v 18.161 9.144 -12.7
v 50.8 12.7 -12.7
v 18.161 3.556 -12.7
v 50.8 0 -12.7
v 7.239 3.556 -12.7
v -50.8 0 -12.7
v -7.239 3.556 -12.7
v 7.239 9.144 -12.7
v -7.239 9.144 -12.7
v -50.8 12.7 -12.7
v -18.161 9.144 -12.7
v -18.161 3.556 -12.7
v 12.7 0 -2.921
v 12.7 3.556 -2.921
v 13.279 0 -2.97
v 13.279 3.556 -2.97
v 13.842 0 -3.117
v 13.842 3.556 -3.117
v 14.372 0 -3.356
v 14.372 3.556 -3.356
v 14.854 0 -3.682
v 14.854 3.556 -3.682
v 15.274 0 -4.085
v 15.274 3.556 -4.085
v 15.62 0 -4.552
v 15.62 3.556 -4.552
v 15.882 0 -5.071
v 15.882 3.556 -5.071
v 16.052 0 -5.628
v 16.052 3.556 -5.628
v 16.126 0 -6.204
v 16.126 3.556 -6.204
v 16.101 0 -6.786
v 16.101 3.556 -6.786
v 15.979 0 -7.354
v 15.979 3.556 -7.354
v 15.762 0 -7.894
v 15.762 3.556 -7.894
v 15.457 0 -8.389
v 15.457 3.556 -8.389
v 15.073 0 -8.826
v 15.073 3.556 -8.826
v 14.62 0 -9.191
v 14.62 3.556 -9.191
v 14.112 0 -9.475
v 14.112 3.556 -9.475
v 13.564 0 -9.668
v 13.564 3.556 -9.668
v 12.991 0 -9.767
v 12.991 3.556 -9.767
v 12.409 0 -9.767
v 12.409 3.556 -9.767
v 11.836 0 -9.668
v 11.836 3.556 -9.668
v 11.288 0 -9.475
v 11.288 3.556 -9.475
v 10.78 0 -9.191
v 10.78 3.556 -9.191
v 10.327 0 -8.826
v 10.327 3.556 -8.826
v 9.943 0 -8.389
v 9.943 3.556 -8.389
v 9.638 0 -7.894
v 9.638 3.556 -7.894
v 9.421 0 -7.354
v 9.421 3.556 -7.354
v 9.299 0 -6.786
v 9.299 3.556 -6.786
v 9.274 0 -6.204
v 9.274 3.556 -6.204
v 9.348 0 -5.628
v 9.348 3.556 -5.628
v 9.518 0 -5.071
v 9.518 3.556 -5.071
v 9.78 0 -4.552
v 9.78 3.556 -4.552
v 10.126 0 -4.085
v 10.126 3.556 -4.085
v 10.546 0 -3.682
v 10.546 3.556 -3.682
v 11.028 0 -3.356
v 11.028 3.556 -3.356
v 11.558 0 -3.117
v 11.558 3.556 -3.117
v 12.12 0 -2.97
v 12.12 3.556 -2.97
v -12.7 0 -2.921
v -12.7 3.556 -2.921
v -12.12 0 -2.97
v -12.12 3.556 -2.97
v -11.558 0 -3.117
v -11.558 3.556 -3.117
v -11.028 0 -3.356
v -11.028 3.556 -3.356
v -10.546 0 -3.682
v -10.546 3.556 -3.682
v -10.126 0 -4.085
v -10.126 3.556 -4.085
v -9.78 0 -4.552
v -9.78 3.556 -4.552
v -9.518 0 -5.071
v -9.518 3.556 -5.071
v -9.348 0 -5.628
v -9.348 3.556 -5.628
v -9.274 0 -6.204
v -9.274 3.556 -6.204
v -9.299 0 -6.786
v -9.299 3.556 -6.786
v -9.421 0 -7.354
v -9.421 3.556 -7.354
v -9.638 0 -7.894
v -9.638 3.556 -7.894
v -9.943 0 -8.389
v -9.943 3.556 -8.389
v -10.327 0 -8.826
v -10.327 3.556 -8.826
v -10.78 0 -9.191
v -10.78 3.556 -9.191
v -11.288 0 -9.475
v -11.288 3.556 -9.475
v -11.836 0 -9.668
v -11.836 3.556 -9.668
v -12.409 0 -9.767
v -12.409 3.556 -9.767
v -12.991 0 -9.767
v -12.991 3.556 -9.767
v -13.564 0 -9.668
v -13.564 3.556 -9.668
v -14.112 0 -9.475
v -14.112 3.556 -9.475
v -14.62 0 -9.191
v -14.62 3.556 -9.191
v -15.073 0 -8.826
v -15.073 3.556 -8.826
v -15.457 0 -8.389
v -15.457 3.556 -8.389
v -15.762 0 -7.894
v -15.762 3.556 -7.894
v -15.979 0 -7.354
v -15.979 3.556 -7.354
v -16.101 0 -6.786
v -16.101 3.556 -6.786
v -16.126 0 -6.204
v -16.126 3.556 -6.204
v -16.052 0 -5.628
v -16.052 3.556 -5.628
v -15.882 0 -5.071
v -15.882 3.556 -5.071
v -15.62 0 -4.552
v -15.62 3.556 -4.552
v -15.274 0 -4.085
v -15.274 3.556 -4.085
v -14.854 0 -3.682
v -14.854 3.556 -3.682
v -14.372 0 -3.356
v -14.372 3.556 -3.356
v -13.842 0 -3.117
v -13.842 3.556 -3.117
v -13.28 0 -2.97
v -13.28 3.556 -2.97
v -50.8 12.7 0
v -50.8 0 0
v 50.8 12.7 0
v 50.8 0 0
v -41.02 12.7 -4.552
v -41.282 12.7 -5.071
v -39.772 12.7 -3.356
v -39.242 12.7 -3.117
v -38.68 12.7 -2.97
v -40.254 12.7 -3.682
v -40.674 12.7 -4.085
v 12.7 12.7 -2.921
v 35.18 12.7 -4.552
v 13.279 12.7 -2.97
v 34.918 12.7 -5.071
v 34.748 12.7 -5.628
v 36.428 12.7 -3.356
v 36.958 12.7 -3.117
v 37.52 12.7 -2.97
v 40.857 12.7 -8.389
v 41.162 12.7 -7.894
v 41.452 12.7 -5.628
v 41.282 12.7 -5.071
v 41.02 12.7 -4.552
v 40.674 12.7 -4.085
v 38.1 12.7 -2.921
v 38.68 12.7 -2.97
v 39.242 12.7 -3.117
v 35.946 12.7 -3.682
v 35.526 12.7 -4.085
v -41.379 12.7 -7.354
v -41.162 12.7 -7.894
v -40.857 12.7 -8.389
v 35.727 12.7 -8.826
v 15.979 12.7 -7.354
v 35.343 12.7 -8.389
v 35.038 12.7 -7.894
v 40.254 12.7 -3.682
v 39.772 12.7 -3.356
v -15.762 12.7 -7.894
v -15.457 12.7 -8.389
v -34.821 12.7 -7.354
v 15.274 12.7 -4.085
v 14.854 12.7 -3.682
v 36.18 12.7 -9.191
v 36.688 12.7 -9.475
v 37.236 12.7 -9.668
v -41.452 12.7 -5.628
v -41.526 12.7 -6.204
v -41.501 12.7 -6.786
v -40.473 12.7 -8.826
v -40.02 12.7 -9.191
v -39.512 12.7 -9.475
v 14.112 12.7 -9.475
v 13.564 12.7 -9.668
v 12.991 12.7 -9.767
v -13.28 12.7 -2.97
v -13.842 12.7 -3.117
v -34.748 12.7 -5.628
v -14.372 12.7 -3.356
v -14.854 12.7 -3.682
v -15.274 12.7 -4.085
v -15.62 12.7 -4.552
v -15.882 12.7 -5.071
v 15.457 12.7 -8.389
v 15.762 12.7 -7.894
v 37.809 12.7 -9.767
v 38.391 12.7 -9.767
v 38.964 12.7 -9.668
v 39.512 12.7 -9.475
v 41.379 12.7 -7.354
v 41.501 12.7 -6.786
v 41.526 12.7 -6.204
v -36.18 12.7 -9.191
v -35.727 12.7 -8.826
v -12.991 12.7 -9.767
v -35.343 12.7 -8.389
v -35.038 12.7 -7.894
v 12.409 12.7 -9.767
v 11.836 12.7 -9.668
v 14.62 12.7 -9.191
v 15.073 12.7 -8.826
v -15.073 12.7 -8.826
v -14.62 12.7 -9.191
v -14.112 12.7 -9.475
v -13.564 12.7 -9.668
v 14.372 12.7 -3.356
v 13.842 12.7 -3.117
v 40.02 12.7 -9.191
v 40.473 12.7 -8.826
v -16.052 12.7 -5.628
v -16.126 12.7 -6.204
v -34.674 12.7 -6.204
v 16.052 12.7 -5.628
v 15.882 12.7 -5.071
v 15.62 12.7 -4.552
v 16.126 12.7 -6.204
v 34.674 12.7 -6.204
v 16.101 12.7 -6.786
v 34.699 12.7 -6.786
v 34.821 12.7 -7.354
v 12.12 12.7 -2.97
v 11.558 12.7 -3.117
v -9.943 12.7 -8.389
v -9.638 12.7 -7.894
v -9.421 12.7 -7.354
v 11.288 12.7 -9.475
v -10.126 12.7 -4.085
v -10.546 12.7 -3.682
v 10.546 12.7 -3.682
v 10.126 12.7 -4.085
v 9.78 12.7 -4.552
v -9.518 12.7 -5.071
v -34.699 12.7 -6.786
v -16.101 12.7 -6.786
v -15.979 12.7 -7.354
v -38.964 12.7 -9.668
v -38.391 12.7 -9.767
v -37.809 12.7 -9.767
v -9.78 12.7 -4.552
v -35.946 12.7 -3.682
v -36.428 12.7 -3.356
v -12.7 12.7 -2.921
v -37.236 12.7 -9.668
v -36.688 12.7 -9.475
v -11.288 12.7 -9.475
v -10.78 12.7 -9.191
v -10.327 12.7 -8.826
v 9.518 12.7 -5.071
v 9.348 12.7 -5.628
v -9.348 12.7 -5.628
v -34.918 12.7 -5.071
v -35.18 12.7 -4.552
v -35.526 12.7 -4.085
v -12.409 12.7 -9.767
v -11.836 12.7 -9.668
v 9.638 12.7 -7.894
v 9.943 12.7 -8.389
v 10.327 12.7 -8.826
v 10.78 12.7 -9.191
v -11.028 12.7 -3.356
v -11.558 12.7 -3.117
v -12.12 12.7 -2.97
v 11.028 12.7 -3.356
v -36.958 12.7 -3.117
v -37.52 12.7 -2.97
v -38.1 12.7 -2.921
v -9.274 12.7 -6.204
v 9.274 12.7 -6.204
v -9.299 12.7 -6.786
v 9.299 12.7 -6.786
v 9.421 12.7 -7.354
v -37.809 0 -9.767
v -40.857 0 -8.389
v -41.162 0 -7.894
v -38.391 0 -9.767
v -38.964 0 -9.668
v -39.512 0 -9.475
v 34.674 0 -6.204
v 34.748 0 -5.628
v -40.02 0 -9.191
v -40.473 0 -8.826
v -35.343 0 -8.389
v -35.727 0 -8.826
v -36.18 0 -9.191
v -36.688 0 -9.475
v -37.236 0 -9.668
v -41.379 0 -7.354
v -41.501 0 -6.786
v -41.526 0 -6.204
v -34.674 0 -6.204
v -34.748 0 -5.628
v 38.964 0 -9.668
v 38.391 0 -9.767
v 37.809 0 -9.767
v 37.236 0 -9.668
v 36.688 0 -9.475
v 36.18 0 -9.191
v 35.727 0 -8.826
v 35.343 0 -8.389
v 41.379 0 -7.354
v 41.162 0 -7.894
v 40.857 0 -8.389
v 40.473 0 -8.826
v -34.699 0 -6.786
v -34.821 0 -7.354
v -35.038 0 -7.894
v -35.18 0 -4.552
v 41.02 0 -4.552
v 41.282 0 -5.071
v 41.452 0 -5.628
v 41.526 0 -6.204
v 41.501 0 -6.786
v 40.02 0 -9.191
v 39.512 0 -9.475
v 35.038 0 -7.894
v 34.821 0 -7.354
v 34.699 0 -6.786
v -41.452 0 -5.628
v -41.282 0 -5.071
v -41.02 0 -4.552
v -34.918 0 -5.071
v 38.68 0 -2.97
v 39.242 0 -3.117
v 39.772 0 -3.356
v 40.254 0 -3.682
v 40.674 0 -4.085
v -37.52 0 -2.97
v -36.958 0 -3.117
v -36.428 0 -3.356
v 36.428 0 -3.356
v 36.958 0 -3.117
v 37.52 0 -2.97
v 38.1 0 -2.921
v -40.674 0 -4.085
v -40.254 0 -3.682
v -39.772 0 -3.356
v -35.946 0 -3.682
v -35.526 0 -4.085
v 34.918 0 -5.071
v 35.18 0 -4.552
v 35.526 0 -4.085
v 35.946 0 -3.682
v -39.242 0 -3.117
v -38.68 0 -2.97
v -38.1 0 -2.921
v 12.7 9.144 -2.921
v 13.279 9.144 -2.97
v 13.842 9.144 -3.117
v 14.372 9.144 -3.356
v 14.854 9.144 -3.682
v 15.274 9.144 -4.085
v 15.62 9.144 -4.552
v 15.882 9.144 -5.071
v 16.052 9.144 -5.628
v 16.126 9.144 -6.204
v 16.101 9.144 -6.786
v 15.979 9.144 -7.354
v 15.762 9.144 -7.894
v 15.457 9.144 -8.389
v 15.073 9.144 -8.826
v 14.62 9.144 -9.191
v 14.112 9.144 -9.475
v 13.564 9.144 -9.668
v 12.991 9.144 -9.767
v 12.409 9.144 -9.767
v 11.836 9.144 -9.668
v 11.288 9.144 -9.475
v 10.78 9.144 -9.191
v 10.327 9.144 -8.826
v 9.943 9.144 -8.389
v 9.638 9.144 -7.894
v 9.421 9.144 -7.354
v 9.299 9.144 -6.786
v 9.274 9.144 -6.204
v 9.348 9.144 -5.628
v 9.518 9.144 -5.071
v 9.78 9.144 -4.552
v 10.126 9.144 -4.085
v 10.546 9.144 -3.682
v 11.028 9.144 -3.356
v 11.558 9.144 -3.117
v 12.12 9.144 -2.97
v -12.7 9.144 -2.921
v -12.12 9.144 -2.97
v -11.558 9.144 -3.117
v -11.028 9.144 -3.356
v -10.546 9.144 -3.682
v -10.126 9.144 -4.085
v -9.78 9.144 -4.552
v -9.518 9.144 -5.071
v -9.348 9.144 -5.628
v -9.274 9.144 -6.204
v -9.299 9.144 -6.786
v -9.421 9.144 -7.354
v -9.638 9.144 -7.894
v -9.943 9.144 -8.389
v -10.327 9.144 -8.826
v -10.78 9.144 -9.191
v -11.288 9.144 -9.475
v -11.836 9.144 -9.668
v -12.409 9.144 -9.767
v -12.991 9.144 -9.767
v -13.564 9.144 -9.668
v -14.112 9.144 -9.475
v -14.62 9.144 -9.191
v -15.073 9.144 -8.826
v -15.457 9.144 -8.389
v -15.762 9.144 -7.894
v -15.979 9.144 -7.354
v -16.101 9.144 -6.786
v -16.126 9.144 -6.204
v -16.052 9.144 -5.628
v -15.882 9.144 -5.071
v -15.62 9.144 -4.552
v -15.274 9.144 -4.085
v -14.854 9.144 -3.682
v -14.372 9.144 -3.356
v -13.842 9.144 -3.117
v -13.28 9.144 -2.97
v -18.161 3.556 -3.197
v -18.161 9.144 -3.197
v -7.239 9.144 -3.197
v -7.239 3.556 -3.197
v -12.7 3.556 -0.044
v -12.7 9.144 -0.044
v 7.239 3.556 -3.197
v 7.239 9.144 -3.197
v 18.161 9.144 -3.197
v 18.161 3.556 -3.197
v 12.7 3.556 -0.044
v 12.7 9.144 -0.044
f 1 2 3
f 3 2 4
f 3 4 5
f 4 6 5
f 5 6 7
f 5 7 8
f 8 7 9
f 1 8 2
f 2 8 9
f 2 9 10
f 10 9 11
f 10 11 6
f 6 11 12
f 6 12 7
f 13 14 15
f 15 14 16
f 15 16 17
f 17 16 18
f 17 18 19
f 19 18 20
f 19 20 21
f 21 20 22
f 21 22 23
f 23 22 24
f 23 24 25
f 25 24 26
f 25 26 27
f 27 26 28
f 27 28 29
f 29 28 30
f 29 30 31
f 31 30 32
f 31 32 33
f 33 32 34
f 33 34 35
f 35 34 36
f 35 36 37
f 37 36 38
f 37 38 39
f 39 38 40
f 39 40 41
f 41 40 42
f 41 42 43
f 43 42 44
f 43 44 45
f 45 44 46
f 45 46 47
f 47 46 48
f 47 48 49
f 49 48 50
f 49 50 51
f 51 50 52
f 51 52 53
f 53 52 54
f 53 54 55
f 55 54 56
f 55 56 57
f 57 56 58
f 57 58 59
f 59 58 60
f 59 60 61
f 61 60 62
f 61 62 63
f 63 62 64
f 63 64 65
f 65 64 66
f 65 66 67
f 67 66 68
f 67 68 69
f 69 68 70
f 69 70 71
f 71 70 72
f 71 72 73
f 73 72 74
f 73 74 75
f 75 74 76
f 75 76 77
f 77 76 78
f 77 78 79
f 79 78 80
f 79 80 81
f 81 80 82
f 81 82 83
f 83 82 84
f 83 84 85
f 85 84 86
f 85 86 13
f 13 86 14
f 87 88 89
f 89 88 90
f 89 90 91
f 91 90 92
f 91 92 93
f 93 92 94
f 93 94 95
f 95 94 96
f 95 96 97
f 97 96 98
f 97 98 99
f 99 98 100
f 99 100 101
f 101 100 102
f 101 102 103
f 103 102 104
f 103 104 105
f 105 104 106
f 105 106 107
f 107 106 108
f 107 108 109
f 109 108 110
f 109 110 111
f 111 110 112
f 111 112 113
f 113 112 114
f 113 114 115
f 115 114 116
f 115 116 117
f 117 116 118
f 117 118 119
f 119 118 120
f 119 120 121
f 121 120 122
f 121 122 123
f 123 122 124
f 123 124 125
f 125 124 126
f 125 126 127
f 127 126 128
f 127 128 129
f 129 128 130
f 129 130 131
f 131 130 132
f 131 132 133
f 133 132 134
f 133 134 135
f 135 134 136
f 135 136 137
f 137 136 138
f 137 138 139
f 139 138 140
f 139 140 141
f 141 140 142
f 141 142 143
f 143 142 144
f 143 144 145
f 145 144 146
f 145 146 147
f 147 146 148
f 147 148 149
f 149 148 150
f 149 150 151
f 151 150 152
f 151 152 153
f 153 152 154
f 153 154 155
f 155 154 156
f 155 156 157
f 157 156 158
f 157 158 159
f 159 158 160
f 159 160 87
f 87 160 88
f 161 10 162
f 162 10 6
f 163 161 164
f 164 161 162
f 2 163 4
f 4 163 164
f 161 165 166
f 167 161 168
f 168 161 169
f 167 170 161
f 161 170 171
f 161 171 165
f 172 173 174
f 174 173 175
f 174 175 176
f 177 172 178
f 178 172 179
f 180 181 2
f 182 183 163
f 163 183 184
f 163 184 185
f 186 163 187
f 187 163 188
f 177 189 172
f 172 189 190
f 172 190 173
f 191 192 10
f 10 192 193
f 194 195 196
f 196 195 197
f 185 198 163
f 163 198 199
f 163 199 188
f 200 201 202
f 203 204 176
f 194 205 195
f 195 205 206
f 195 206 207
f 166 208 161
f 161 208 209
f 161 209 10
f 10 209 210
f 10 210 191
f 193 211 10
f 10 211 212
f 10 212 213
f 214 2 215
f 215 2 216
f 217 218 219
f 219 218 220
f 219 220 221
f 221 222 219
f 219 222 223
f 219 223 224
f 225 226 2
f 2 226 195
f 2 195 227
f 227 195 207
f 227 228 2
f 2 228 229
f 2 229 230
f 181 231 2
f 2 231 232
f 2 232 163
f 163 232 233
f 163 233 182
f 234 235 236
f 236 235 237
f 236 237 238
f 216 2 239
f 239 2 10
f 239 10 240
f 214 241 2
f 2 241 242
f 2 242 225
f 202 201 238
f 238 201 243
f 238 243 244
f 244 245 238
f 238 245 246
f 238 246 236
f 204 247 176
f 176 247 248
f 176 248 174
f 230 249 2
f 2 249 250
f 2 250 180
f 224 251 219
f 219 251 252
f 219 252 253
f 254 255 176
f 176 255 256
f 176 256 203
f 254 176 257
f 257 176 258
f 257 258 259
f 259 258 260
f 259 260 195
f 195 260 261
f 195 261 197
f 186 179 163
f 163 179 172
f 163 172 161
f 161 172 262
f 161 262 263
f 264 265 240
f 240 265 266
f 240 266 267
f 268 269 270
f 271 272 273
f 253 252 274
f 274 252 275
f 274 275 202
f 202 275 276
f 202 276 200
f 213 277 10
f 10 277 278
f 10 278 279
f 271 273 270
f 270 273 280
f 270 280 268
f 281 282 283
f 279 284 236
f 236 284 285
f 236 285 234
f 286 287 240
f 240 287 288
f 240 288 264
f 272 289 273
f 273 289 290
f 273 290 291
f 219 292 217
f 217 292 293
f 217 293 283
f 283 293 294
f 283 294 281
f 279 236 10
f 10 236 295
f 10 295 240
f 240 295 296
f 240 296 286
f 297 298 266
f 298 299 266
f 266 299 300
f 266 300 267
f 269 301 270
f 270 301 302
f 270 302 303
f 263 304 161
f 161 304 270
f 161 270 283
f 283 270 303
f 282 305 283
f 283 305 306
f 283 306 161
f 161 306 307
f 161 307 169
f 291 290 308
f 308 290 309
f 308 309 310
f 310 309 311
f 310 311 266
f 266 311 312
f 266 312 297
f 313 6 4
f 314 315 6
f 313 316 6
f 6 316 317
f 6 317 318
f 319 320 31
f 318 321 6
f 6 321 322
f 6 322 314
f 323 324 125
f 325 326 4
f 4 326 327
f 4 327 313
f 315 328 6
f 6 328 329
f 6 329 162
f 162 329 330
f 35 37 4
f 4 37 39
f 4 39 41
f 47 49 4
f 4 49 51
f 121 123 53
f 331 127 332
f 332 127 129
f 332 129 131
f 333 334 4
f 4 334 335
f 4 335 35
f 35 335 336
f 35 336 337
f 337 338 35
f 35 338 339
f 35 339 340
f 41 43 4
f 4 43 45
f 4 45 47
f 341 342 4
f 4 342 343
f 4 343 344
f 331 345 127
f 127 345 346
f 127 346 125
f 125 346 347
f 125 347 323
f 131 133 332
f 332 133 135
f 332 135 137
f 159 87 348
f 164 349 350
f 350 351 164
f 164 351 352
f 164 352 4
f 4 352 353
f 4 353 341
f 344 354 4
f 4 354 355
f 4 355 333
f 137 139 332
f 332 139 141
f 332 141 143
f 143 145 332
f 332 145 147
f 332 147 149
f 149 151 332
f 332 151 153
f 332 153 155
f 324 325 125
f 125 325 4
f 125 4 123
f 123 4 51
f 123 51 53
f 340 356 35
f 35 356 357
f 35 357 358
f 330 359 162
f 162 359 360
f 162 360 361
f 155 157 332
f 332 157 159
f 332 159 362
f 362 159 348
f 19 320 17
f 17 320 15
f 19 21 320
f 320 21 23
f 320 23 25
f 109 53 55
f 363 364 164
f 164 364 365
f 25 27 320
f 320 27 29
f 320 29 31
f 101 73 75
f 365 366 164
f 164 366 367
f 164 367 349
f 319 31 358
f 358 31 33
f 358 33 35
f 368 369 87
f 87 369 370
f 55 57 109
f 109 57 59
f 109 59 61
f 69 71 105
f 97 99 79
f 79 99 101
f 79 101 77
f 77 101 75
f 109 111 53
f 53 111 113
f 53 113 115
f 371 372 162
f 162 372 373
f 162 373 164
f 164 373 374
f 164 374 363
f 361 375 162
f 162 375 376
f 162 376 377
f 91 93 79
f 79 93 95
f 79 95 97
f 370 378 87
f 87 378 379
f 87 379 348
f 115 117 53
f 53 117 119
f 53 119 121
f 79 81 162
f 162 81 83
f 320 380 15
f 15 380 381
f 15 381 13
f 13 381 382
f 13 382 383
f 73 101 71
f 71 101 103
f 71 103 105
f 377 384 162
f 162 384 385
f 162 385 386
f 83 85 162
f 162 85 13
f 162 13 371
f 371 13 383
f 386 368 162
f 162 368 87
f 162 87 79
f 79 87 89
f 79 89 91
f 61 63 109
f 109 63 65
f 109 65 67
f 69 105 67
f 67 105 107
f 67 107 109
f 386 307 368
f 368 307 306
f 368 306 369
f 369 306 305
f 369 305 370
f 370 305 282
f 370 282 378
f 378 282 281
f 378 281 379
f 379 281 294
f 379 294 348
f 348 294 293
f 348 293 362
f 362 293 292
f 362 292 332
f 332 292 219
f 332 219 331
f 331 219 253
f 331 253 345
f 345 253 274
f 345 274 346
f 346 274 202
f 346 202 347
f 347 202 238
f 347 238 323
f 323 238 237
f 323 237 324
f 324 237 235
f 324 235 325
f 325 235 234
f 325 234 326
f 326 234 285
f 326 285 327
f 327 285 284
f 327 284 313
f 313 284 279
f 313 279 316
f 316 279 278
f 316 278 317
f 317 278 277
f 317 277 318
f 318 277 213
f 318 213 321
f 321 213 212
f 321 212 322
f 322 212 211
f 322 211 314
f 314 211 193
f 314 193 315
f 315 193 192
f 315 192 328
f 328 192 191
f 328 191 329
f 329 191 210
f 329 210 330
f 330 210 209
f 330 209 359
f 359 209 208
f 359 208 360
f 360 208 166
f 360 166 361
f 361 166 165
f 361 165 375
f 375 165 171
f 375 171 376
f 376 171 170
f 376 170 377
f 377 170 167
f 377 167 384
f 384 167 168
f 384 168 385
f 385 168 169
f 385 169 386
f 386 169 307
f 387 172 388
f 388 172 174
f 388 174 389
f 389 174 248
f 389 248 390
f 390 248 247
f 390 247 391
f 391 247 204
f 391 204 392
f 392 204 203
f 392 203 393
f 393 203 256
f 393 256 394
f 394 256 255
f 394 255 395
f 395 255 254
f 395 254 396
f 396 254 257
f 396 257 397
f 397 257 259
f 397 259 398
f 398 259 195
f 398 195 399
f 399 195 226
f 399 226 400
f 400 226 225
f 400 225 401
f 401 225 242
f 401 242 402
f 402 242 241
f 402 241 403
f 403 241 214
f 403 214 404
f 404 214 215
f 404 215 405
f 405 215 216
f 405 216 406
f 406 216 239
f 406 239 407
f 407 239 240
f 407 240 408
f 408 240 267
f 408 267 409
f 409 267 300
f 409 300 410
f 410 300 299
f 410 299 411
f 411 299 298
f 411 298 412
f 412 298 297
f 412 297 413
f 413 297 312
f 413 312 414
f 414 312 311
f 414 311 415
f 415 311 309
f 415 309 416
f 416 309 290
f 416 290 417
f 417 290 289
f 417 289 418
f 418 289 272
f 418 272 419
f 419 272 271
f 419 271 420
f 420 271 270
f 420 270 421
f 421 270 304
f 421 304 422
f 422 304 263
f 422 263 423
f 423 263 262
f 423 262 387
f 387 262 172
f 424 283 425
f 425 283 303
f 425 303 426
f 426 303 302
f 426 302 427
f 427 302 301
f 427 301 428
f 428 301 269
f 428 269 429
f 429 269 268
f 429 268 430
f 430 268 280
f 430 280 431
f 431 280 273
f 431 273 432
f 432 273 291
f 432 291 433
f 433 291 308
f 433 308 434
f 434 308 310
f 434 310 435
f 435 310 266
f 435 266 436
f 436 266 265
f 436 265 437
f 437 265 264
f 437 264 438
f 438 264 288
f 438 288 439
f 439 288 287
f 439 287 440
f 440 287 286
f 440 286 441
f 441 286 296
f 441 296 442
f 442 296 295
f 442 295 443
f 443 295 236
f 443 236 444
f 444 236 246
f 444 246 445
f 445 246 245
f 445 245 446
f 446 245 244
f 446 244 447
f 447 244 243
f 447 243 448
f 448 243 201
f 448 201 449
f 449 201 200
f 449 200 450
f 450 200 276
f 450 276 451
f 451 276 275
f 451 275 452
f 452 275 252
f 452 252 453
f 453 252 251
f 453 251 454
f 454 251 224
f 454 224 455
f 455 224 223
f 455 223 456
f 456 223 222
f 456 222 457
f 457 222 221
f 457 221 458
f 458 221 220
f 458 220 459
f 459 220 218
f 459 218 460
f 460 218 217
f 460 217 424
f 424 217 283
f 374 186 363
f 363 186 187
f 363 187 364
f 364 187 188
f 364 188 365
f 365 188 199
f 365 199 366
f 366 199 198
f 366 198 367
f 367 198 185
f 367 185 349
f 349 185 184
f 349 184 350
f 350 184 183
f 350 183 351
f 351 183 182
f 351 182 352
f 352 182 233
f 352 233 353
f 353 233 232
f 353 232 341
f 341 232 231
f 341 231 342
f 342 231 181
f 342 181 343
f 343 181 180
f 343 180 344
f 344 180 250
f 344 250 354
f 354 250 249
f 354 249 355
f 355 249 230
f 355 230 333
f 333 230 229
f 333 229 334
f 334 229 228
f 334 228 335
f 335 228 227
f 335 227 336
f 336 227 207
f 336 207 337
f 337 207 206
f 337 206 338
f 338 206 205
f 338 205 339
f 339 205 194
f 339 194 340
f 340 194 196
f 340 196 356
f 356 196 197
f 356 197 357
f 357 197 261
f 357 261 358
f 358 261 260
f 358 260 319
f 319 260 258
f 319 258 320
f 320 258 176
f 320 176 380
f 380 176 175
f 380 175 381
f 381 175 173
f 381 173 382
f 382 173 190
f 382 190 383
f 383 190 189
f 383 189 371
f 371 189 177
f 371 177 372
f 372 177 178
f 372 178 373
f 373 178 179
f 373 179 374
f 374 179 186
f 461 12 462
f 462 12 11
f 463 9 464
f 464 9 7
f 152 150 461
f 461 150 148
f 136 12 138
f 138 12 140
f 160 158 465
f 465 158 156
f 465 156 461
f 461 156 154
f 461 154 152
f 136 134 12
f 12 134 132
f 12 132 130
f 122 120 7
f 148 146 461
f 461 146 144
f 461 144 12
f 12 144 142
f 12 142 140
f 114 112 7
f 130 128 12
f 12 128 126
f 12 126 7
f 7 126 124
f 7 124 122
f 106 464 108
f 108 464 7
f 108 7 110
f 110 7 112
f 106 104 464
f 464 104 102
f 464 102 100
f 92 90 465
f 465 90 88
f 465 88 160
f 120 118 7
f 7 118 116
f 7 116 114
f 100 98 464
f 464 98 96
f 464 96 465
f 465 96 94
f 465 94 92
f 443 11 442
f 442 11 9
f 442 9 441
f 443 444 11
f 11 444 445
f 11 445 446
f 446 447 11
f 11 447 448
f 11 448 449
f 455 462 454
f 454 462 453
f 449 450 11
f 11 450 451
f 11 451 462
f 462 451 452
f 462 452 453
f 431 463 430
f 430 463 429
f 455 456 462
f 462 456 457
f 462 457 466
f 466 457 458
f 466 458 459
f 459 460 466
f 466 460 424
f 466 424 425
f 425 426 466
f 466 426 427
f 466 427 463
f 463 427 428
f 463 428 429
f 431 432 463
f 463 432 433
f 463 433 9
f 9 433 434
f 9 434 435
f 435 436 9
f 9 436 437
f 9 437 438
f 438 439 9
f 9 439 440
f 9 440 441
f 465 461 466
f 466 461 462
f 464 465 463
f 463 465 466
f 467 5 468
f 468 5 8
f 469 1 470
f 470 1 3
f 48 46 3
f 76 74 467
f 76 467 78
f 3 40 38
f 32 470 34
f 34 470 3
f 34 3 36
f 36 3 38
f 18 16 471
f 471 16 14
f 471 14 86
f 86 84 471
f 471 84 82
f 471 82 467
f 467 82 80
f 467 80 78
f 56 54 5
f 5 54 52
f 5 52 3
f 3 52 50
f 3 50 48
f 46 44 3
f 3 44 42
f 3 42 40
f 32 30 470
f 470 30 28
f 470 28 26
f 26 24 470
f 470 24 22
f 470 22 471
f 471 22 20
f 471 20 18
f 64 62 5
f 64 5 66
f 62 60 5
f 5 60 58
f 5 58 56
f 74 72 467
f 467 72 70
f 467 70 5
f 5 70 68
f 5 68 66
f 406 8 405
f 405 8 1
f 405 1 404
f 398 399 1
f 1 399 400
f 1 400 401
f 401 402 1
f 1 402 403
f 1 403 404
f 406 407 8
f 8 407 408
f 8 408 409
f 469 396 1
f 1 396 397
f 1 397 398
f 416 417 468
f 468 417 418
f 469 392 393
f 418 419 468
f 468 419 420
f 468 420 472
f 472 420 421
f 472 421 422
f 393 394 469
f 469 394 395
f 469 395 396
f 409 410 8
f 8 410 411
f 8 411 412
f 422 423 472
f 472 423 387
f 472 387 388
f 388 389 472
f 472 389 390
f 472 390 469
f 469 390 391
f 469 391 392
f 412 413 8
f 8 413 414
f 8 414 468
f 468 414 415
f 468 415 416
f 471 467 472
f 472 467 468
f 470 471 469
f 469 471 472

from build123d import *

# Parameters (mm, degrees)
SKETCH1_W           = 101.6
SKETCH1_H           = 12.7
BOSS_EXTRUDE1_DEPTH = 12.7
SKETCH2_R           = 3.429
CUT_EXTRUDE1_DEPTH  = 54.881536726
CUT_EXTRUDE2_DEPTH  = 2.794


with BuildPart() as part:
    # Sketch1 → Boss-Extrude1 (new body)
    with BuildSketch(Plane(origin=(0, 0, 0), x_dir=(1, 0, 0), z_dir=(0, 1, 0))):
        with Locations((0, 6.35)):
            Rectangle(SKETCH1_W, SKETCH1_H)
    extrude(amount=BOSS_EXTRUDE1_DEPTH)

    # Sketch2 → Cut-Extrude1 (cut, through all)
    with BuildSketch(Plane(origin=(0, 12.7, 0), x_dir=(1, 0, 0), z_dir=(0, 1, 0))):
        with Locations(Location((-38.1, 6.35, 0), (0, 0, 270))):
            Circle(SKETCH2_R)
        with Locations(Location((38.1, 6.35, 0), (0, 0, 270))):
            Circle(SKETCH2_R)
        with Locations(Location((-12.7, 6.35, 0), (0, 0, 270))):
            Circle(SKETCH2_R)
        with Locations(Location((12.7, 6.35, 0), (0, 0, 270))):
            Circle(SKETCH2_R)
    extrude(amount=-CUT_EXTRUDE1_DEPTH, mode=Mode.SUBTRACT)

    # Sketch3 → Cut-Extrude2 (cut, symmetric)
    with BuildSketch(Plane(origin=(0, 6.35, 0), x_dir=(1, 0, 0), z_dir=(0, 1, 0))):
        Polygon((-18.161, 3.19709018), (-18.161, 19.396139053), (-7.239, 19.396139053), (-7.239, 9.50290982), (-7.239, 3.19709018), (-12.7, 0.04418036), align=None)
        Polygon((7.239, 19.396139053), (18.161, 19.396139053), (18.161, 9.50290982), (18.161, 3.19709018), (12.7, 0.04418036), (7.239, 3.19709018), align=None)
    extrude(amount=CUT_EXTRUDE2_DEPTH, both=True, mode=Mode.SUBTRACT)


solid = part.part
